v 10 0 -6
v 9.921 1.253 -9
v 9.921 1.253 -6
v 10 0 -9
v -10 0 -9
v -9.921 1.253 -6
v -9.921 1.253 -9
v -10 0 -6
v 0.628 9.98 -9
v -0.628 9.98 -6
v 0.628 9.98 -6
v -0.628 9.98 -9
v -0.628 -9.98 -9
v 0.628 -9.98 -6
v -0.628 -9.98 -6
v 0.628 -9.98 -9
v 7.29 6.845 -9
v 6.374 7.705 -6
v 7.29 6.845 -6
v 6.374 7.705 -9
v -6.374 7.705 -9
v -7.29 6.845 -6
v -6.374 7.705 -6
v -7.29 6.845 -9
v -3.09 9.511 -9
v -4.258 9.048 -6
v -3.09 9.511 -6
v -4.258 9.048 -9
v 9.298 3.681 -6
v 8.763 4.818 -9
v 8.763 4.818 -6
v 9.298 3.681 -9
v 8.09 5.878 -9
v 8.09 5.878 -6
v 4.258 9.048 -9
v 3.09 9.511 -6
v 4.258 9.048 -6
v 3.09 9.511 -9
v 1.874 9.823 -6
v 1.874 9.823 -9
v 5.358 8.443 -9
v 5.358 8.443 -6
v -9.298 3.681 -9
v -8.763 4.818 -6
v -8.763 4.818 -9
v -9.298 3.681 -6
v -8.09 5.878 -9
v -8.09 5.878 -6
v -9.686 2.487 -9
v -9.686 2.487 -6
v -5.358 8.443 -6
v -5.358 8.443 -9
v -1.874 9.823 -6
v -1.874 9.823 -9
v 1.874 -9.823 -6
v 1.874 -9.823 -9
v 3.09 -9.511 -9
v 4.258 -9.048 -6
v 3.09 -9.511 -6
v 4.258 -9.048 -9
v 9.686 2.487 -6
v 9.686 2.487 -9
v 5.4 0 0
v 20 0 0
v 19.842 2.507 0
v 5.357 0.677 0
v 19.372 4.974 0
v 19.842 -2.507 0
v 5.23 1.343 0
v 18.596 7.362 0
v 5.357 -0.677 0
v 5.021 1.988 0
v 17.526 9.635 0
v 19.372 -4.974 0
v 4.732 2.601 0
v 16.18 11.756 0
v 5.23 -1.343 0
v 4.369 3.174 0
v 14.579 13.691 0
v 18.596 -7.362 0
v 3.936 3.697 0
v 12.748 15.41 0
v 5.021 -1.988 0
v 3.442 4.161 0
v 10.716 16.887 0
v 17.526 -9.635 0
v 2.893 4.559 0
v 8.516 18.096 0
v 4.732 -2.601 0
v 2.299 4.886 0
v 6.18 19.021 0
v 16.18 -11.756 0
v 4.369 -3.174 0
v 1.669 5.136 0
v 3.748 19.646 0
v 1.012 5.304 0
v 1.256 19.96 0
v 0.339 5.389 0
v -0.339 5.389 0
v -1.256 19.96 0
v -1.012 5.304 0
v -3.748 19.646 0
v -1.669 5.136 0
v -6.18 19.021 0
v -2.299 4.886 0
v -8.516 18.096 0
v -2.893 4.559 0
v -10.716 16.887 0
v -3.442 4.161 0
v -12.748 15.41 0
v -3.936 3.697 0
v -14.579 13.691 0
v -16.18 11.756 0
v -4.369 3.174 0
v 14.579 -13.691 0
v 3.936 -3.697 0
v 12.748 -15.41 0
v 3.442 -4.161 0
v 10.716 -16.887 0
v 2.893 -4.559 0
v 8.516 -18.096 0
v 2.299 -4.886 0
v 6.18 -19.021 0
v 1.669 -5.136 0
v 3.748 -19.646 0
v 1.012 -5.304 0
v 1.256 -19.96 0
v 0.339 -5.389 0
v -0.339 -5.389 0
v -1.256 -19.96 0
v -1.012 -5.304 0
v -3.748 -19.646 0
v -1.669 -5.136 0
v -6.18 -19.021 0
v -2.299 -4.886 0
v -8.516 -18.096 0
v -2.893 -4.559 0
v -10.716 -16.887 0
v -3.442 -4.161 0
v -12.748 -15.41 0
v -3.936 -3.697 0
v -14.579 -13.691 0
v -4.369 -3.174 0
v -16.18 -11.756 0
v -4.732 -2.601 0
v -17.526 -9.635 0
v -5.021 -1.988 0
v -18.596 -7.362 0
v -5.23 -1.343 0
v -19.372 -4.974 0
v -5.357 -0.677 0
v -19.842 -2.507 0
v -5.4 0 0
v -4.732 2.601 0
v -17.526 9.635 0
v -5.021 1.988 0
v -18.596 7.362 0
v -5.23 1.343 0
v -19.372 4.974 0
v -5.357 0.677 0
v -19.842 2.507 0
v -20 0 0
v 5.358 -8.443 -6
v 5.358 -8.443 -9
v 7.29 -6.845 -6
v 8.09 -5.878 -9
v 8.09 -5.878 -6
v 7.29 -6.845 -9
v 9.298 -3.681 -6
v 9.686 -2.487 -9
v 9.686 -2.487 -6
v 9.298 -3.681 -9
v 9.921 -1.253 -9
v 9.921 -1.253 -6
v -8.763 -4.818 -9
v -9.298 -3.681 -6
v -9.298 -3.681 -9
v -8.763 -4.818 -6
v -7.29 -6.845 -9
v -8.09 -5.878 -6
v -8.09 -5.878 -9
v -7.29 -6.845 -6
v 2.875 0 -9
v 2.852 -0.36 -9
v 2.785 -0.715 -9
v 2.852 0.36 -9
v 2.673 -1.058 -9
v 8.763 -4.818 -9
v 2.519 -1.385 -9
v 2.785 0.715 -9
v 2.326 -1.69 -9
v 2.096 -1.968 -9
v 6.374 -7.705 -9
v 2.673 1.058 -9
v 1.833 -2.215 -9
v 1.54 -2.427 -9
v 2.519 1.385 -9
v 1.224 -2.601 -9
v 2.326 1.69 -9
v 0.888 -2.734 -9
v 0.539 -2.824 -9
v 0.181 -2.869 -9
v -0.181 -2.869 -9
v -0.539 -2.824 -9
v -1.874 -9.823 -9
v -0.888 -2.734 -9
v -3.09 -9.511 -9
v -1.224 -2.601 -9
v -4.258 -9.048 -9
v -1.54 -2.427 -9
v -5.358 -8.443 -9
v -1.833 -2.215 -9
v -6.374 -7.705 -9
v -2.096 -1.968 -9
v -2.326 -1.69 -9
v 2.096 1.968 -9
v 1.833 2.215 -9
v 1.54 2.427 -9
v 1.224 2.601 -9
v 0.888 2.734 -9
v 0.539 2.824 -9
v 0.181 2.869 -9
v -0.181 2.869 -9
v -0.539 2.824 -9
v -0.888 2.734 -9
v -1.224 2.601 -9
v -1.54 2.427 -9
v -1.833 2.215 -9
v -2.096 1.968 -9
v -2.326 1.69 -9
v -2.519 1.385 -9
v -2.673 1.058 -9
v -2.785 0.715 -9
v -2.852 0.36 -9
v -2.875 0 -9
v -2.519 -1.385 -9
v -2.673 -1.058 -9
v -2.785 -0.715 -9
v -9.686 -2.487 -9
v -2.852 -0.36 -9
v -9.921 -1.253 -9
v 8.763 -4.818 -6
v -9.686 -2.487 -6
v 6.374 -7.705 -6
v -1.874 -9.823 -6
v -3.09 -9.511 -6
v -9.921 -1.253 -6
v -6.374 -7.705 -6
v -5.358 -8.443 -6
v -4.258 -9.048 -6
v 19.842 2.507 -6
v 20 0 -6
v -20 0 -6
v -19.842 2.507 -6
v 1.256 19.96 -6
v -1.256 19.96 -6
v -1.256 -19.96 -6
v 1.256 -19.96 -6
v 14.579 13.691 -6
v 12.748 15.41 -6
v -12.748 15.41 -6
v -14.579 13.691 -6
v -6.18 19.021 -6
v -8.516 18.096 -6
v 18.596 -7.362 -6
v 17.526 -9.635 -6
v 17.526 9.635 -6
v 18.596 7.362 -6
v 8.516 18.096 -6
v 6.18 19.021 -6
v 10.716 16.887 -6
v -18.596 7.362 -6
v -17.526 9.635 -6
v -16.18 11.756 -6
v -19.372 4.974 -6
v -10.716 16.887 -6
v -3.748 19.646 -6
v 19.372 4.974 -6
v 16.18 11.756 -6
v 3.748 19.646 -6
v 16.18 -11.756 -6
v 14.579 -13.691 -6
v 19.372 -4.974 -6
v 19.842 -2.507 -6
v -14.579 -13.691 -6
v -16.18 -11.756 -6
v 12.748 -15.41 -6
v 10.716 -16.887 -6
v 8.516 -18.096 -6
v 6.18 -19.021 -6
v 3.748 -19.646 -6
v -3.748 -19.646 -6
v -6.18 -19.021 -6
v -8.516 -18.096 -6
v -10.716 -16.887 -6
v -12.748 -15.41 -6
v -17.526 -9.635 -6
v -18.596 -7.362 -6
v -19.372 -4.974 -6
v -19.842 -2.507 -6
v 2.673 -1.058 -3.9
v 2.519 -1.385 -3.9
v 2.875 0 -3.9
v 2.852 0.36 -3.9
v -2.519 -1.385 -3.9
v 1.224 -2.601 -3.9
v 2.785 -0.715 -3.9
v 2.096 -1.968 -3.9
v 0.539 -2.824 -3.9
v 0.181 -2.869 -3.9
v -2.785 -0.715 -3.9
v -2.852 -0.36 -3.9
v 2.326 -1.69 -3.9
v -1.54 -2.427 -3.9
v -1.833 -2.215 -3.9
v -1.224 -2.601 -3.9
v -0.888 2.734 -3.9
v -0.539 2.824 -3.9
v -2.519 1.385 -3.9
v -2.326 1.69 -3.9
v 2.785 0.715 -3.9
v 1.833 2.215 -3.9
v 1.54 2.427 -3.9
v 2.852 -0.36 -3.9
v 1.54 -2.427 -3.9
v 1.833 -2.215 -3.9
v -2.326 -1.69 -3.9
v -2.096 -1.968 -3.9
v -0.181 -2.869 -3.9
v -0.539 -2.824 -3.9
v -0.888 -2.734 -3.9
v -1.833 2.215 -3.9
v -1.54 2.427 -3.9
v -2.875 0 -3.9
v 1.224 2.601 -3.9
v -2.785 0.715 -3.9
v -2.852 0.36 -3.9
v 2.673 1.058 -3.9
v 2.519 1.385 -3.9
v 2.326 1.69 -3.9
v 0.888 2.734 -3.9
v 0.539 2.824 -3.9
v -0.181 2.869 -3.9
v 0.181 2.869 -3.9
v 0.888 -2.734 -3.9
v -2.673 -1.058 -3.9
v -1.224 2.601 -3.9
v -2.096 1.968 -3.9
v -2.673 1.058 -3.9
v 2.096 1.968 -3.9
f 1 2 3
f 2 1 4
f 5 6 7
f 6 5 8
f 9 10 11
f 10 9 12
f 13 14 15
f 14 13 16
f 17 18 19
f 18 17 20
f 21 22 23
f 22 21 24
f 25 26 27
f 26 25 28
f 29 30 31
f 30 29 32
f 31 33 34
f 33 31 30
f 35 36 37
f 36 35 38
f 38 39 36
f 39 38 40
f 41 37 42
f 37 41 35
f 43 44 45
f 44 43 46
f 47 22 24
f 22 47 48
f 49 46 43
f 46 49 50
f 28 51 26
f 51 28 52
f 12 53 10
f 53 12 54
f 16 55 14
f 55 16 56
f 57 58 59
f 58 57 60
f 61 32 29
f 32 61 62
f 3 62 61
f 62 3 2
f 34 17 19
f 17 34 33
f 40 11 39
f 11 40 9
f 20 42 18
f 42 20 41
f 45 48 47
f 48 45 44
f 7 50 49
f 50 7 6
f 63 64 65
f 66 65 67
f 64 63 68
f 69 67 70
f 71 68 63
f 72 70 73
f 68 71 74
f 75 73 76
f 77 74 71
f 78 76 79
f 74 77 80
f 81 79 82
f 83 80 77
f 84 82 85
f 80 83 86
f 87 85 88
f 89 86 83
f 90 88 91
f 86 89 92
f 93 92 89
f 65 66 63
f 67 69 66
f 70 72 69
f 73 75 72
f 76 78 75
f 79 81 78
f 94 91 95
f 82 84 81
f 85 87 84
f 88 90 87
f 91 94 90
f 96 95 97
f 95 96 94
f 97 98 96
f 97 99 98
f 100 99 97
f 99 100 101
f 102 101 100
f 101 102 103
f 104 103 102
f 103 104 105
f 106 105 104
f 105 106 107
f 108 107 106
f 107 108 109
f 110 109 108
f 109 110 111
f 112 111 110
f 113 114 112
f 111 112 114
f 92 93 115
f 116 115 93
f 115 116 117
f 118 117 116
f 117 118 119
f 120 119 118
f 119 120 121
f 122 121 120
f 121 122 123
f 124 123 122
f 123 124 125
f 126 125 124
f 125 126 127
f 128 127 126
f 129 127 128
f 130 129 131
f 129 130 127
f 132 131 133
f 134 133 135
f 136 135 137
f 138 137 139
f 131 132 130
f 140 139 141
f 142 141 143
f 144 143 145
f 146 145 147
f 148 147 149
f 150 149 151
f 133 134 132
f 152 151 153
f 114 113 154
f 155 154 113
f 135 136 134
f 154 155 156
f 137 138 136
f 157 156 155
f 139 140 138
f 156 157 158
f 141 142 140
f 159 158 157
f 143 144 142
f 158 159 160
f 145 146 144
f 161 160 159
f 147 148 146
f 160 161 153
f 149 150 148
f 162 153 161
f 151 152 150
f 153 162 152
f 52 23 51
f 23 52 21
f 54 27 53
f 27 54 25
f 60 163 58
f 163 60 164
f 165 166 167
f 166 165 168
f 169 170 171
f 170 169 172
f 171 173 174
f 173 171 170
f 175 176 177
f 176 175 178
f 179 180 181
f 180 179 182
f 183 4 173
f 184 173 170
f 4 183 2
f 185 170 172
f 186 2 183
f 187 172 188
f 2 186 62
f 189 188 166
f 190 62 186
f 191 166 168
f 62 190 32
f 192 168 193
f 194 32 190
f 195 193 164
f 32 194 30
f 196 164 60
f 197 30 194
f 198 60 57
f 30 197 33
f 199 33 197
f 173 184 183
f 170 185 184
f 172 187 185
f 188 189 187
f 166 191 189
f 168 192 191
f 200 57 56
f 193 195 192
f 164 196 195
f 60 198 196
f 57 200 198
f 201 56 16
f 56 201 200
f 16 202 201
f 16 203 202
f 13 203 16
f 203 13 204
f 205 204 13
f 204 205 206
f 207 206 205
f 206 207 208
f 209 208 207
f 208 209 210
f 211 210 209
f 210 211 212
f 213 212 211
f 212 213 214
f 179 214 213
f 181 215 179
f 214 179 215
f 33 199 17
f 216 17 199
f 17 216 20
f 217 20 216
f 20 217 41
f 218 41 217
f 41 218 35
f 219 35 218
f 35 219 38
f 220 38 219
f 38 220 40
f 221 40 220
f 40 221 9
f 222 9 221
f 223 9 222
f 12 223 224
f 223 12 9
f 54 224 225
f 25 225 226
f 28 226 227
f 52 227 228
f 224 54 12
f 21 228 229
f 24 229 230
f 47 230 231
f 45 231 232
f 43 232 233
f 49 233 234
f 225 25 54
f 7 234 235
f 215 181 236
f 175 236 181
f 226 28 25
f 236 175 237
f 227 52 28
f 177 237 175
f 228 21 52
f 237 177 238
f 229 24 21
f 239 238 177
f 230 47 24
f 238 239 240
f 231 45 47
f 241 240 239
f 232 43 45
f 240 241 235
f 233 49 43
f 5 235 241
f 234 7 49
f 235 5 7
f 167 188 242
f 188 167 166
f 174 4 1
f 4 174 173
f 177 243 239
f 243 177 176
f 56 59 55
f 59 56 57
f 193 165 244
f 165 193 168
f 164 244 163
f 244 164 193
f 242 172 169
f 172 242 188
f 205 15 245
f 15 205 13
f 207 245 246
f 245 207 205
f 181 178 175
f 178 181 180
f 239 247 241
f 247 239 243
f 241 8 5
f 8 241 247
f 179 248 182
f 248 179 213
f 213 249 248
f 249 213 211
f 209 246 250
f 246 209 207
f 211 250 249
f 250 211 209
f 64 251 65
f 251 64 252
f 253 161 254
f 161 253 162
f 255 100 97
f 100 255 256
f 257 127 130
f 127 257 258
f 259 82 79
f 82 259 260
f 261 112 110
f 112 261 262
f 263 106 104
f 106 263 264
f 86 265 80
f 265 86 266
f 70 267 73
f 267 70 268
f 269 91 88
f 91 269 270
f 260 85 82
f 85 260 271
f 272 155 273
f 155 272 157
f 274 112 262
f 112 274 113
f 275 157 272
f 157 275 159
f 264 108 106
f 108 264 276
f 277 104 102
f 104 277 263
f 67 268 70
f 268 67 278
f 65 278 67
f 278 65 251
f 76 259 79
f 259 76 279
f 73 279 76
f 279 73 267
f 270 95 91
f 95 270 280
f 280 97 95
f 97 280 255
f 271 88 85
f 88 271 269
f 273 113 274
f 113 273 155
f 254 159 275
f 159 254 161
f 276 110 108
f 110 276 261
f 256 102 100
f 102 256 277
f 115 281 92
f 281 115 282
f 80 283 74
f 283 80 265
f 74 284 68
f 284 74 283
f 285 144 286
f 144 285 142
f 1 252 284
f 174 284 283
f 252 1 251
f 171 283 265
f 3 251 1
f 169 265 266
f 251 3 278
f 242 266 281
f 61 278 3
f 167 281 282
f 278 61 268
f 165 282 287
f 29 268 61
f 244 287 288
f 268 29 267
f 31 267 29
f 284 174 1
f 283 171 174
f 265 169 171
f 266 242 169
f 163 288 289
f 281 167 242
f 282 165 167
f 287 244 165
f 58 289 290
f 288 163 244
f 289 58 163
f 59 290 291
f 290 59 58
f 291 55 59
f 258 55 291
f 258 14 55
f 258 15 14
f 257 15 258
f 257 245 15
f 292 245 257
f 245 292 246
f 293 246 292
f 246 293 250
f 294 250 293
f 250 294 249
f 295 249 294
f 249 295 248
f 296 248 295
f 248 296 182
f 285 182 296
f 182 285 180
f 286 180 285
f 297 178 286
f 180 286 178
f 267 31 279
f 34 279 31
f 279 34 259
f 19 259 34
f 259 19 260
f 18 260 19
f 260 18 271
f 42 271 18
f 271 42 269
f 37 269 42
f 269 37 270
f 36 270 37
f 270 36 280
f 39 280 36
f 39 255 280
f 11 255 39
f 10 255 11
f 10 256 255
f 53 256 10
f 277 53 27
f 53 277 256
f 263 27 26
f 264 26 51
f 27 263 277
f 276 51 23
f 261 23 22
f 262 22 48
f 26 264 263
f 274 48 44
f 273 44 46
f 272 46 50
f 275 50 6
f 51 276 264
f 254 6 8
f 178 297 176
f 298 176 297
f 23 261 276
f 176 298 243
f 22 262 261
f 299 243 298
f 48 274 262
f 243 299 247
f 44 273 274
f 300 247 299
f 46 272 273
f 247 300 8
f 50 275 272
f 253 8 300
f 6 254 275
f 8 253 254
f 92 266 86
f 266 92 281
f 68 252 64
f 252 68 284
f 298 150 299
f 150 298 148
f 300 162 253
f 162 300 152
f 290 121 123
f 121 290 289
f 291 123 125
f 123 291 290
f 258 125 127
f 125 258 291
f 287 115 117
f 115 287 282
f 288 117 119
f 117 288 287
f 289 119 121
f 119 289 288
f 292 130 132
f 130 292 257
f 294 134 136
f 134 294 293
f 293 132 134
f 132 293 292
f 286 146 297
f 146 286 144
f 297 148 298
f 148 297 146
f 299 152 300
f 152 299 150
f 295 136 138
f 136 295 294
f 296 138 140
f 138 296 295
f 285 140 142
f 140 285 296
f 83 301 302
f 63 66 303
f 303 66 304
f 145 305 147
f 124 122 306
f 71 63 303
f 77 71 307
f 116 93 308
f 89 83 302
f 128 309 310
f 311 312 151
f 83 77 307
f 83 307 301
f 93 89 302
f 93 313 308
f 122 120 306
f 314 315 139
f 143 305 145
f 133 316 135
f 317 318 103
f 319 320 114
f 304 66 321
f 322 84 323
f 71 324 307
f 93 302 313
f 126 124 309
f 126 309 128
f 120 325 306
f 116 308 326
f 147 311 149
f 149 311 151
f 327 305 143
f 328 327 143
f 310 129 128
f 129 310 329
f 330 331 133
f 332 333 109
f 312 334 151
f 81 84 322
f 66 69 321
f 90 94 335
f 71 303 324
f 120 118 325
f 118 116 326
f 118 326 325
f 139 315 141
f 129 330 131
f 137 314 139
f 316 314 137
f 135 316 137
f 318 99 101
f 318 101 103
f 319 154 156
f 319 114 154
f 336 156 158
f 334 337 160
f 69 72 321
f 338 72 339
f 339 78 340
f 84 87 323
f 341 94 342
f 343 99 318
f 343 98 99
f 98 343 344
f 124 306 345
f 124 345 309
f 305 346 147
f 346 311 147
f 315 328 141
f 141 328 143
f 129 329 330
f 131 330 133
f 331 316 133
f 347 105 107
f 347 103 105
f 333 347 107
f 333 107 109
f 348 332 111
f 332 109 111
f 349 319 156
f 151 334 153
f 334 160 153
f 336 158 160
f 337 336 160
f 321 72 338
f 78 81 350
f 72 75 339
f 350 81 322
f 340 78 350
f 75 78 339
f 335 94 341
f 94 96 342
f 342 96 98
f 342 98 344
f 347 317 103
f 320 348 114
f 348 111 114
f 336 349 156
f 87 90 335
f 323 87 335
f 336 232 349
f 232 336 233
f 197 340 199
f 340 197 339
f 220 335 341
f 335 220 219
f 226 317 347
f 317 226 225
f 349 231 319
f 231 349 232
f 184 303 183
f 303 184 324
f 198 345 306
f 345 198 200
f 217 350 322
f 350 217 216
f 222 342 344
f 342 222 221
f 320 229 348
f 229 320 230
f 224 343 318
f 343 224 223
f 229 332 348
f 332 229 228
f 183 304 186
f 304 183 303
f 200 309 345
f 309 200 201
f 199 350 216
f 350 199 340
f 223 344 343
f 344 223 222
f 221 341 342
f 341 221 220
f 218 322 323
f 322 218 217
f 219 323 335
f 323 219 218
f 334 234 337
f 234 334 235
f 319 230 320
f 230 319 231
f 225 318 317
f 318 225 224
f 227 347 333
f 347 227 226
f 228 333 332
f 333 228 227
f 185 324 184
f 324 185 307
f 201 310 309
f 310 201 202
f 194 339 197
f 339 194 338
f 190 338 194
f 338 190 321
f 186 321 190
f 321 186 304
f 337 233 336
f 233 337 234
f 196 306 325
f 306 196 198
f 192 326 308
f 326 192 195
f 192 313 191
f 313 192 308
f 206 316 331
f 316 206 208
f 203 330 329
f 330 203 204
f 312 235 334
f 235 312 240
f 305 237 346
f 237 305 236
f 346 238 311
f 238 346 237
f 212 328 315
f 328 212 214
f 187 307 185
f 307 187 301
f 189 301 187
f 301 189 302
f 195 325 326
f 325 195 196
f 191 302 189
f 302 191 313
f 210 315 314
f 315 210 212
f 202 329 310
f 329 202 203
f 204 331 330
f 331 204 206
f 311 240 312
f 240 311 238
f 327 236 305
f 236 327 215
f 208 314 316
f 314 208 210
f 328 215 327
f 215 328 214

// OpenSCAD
$fn = 50;


difference() {
	union() {
		translate(v = [0, 0, -9.0000000000]) {
			cylinder(h = 9, r = 10.0000000000);
		}
		translate(v = [0, 0, -6.0000000000]) {
			cylinder(h = 6, r = 20.0000000000);
		}
	}
	union() {
		translate(v = [0, 0, 0]) {
			rotate(a = [0, 0, 0]) {
				difference() {
					union() {
						#translate(v = [0, 0, -9.0000000000]) {
							cylinder(h = 9, r = 2.6000000000);
						}
						#translate(v = [0, 0, -3.9000000000]) {
							cylinder(h = 3.9000000000, r = 10.0000000000, r1 = 2.8750000000, r2 = 5.4000000000);
						}
						#translate(v = [0, 0, -9.0000000000]) {
							cylinder(h = 9, r = 2.8750000000);
						}
						#translate(v = [0, 0, -9.0000000000]) {
							cylinder(h = 9, r = 2.6000000000);
						}
					}
					union();
				}
			}
		}
	}
}
